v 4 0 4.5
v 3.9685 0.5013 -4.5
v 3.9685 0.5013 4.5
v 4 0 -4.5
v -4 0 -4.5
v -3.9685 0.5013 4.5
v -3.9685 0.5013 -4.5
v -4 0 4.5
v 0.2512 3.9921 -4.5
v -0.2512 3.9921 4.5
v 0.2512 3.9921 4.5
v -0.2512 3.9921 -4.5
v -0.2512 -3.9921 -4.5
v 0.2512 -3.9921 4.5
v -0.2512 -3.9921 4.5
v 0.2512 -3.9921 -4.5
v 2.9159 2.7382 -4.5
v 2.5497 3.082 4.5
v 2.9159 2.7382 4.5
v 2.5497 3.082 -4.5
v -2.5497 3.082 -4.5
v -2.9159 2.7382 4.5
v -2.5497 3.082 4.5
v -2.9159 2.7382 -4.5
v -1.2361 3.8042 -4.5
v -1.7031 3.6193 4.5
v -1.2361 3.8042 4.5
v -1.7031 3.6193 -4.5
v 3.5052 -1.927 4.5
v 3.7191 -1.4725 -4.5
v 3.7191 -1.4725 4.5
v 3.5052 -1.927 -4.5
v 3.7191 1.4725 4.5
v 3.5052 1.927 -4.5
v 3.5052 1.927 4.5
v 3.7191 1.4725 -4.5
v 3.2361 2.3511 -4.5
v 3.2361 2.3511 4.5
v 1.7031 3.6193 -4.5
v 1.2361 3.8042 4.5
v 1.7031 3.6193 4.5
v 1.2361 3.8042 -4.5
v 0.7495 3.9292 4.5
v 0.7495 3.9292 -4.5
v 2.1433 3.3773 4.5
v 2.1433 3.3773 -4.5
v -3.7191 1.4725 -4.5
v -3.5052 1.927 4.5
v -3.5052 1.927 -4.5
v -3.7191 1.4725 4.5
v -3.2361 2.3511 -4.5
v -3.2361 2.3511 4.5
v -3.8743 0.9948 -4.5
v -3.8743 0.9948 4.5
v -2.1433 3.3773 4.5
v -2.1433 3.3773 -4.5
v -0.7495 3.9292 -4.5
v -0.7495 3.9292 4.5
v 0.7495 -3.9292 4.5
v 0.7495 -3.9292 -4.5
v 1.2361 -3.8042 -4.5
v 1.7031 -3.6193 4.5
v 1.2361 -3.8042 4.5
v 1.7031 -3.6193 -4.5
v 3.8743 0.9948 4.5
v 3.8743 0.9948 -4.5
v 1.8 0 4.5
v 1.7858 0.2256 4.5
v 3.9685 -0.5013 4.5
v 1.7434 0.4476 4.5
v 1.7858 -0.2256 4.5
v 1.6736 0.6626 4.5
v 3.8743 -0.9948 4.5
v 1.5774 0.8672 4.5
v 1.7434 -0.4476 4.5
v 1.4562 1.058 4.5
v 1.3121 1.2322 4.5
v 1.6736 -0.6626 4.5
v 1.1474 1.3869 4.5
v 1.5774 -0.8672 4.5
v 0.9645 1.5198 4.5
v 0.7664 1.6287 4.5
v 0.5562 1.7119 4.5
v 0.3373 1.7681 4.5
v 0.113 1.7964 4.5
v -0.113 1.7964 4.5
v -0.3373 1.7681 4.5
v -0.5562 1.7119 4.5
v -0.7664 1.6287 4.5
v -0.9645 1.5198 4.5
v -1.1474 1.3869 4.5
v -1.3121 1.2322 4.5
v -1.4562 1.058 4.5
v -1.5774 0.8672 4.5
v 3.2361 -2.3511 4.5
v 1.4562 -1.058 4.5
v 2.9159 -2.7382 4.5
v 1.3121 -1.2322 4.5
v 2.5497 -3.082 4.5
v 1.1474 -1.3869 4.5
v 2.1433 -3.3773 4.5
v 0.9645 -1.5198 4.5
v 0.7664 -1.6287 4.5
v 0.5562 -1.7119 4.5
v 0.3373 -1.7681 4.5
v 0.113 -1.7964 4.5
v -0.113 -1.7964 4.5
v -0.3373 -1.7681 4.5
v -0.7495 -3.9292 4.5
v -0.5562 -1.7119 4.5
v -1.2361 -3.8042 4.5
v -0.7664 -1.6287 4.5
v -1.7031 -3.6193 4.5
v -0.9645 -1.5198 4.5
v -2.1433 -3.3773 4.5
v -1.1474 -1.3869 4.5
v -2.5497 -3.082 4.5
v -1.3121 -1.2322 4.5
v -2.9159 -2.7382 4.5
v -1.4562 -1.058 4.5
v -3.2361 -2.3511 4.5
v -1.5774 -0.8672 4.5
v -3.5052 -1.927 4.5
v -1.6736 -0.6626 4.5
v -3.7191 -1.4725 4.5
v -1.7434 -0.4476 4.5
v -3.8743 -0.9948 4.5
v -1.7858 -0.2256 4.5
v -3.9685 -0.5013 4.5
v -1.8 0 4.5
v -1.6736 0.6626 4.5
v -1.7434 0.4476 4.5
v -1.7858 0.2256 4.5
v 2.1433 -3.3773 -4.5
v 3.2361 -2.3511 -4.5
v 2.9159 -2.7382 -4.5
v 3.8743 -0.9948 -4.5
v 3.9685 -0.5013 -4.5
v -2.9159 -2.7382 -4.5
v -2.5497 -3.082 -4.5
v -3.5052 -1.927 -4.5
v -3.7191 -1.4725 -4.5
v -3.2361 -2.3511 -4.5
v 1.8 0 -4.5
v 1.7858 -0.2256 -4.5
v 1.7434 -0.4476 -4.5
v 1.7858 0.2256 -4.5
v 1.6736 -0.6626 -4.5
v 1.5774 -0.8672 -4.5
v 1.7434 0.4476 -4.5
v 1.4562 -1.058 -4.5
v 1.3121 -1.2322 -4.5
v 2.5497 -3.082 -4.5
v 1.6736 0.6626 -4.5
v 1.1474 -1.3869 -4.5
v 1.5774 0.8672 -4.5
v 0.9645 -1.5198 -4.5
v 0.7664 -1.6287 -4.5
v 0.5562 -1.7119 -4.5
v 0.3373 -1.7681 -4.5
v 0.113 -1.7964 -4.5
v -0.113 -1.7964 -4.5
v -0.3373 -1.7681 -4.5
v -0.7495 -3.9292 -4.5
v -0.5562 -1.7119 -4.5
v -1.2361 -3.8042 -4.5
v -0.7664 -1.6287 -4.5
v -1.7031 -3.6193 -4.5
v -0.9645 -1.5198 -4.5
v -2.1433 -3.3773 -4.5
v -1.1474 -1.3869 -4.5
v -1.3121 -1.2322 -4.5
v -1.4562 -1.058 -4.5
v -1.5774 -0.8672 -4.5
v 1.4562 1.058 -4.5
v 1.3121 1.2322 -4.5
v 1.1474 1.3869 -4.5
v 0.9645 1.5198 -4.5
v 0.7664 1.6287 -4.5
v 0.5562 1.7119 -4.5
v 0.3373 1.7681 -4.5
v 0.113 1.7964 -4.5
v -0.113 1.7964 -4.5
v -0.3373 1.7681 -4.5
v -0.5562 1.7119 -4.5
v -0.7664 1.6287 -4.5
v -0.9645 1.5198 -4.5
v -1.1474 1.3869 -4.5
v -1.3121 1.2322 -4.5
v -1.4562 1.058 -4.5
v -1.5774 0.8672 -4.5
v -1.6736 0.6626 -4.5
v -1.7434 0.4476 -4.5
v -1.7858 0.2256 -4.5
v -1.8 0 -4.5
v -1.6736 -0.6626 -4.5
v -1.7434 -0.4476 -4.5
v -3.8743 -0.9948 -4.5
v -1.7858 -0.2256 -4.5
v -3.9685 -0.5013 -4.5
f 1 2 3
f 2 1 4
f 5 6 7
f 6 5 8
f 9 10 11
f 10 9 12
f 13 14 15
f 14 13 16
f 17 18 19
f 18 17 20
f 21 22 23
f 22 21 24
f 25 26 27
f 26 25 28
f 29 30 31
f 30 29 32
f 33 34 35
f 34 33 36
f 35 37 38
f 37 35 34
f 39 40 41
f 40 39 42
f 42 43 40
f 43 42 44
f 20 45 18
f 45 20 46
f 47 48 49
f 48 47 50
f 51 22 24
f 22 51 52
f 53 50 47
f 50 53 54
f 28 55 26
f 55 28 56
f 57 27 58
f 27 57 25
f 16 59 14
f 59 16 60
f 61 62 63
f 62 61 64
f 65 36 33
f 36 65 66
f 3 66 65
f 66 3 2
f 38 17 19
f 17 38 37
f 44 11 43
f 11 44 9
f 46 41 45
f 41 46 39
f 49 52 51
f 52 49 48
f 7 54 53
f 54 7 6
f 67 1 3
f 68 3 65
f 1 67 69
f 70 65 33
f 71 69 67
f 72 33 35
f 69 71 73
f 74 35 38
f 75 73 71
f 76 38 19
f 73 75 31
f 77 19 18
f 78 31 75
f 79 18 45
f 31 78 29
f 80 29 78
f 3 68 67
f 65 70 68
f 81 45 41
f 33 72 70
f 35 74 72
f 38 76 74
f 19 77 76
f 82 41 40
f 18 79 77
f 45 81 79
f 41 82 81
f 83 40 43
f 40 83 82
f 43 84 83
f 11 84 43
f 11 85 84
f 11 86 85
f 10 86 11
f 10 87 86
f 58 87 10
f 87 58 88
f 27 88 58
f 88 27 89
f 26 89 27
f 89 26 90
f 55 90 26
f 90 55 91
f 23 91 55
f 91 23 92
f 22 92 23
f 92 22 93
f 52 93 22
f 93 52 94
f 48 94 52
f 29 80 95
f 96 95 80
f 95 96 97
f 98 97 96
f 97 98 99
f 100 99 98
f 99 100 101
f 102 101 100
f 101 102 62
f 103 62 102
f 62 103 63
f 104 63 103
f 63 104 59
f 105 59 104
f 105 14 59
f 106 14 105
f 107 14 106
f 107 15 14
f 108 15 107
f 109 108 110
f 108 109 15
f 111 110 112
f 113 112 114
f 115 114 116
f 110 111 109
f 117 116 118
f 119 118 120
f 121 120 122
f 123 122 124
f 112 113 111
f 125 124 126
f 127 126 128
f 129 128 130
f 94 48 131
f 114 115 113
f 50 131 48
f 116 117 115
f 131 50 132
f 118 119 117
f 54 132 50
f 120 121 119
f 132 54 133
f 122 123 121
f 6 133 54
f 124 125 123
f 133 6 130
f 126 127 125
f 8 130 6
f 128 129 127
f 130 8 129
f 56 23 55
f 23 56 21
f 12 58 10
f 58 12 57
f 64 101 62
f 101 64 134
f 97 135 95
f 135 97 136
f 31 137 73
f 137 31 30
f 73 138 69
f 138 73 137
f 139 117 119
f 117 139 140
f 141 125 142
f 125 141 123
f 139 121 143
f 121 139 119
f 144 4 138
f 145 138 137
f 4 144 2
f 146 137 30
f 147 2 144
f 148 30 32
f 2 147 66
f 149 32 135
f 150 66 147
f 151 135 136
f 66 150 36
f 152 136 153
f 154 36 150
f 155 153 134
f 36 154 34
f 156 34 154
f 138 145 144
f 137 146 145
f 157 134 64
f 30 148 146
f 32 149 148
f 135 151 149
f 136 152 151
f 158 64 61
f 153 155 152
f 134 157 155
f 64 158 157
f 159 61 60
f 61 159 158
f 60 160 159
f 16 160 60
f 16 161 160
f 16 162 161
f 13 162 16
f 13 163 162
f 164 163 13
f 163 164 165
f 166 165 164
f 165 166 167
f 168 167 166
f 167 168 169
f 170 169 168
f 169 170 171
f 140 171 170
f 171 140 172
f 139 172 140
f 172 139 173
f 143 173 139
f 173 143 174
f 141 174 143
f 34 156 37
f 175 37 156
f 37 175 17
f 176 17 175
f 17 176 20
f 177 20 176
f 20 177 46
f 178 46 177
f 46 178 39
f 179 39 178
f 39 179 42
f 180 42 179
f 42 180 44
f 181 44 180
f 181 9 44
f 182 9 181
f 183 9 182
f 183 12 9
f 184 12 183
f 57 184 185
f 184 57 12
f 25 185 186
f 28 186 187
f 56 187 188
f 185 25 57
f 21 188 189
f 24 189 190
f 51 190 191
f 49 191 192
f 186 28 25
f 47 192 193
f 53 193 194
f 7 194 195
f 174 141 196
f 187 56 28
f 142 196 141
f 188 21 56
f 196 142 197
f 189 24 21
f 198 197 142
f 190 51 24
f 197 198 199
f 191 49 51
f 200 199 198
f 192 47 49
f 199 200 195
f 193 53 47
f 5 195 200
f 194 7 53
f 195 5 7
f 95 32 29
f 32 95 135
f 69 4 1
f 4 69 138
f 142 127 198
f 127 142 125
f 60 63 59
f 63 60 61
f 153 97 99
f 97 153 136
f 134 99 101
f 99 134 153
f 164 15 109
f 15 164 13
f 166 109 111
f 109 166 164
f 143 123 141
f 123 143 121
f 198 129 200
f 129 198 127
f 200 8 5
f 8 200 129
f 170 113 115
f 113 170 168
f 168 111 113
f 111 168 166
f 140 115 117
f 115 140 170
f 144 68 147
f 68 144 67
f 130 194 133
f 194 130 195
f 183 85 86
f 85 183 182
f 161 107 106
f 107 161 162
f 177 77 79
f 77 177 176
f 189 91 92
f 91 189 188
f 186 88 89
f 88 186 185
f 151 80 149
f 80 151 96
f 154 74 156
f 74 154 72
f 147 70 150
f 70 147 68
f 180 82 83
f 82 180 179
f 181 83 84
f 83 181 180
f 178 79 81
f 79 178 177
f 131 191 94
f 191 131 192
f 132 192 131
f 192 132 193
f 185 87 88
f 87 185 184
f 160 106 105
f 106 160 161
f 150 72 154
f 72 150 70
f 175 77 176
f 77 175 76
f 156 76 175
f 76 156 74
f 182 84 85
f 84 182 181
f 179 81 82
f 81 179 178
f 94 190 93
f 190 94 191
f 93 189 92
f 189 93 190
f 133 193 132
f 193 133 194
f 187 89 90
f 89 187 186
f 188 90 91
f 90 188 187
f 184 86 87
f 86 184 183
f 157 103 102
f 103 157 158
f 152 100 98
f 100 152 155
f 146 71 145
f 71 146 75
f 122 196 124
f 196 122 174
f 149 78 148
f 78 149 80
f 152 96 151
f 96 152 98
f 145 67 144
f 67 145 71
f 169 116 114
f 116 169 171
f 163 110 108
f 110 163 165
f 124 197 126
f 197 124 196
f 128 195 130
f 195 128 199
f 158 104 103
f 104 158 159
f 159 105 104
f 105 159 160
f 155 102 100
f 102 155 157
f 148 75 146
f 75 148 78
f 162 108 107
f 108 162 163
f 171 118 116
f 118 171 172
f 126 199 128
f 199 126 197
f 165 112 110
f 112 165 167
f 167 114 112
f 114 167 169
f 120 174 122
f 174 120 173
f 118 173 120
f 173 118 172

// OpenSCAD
$fn = 50;


difference() {
	union() {
		translate(v = [0, 0, -4.5000000000]) {
			cylinder(h = 9, r = 4.0000000000);
		}
	}
	union() {
		translate(v = [0, 0, -100.0000000000]) {
			cylinder(h = 200, r = 1.8000000000);
		}
	}
}
